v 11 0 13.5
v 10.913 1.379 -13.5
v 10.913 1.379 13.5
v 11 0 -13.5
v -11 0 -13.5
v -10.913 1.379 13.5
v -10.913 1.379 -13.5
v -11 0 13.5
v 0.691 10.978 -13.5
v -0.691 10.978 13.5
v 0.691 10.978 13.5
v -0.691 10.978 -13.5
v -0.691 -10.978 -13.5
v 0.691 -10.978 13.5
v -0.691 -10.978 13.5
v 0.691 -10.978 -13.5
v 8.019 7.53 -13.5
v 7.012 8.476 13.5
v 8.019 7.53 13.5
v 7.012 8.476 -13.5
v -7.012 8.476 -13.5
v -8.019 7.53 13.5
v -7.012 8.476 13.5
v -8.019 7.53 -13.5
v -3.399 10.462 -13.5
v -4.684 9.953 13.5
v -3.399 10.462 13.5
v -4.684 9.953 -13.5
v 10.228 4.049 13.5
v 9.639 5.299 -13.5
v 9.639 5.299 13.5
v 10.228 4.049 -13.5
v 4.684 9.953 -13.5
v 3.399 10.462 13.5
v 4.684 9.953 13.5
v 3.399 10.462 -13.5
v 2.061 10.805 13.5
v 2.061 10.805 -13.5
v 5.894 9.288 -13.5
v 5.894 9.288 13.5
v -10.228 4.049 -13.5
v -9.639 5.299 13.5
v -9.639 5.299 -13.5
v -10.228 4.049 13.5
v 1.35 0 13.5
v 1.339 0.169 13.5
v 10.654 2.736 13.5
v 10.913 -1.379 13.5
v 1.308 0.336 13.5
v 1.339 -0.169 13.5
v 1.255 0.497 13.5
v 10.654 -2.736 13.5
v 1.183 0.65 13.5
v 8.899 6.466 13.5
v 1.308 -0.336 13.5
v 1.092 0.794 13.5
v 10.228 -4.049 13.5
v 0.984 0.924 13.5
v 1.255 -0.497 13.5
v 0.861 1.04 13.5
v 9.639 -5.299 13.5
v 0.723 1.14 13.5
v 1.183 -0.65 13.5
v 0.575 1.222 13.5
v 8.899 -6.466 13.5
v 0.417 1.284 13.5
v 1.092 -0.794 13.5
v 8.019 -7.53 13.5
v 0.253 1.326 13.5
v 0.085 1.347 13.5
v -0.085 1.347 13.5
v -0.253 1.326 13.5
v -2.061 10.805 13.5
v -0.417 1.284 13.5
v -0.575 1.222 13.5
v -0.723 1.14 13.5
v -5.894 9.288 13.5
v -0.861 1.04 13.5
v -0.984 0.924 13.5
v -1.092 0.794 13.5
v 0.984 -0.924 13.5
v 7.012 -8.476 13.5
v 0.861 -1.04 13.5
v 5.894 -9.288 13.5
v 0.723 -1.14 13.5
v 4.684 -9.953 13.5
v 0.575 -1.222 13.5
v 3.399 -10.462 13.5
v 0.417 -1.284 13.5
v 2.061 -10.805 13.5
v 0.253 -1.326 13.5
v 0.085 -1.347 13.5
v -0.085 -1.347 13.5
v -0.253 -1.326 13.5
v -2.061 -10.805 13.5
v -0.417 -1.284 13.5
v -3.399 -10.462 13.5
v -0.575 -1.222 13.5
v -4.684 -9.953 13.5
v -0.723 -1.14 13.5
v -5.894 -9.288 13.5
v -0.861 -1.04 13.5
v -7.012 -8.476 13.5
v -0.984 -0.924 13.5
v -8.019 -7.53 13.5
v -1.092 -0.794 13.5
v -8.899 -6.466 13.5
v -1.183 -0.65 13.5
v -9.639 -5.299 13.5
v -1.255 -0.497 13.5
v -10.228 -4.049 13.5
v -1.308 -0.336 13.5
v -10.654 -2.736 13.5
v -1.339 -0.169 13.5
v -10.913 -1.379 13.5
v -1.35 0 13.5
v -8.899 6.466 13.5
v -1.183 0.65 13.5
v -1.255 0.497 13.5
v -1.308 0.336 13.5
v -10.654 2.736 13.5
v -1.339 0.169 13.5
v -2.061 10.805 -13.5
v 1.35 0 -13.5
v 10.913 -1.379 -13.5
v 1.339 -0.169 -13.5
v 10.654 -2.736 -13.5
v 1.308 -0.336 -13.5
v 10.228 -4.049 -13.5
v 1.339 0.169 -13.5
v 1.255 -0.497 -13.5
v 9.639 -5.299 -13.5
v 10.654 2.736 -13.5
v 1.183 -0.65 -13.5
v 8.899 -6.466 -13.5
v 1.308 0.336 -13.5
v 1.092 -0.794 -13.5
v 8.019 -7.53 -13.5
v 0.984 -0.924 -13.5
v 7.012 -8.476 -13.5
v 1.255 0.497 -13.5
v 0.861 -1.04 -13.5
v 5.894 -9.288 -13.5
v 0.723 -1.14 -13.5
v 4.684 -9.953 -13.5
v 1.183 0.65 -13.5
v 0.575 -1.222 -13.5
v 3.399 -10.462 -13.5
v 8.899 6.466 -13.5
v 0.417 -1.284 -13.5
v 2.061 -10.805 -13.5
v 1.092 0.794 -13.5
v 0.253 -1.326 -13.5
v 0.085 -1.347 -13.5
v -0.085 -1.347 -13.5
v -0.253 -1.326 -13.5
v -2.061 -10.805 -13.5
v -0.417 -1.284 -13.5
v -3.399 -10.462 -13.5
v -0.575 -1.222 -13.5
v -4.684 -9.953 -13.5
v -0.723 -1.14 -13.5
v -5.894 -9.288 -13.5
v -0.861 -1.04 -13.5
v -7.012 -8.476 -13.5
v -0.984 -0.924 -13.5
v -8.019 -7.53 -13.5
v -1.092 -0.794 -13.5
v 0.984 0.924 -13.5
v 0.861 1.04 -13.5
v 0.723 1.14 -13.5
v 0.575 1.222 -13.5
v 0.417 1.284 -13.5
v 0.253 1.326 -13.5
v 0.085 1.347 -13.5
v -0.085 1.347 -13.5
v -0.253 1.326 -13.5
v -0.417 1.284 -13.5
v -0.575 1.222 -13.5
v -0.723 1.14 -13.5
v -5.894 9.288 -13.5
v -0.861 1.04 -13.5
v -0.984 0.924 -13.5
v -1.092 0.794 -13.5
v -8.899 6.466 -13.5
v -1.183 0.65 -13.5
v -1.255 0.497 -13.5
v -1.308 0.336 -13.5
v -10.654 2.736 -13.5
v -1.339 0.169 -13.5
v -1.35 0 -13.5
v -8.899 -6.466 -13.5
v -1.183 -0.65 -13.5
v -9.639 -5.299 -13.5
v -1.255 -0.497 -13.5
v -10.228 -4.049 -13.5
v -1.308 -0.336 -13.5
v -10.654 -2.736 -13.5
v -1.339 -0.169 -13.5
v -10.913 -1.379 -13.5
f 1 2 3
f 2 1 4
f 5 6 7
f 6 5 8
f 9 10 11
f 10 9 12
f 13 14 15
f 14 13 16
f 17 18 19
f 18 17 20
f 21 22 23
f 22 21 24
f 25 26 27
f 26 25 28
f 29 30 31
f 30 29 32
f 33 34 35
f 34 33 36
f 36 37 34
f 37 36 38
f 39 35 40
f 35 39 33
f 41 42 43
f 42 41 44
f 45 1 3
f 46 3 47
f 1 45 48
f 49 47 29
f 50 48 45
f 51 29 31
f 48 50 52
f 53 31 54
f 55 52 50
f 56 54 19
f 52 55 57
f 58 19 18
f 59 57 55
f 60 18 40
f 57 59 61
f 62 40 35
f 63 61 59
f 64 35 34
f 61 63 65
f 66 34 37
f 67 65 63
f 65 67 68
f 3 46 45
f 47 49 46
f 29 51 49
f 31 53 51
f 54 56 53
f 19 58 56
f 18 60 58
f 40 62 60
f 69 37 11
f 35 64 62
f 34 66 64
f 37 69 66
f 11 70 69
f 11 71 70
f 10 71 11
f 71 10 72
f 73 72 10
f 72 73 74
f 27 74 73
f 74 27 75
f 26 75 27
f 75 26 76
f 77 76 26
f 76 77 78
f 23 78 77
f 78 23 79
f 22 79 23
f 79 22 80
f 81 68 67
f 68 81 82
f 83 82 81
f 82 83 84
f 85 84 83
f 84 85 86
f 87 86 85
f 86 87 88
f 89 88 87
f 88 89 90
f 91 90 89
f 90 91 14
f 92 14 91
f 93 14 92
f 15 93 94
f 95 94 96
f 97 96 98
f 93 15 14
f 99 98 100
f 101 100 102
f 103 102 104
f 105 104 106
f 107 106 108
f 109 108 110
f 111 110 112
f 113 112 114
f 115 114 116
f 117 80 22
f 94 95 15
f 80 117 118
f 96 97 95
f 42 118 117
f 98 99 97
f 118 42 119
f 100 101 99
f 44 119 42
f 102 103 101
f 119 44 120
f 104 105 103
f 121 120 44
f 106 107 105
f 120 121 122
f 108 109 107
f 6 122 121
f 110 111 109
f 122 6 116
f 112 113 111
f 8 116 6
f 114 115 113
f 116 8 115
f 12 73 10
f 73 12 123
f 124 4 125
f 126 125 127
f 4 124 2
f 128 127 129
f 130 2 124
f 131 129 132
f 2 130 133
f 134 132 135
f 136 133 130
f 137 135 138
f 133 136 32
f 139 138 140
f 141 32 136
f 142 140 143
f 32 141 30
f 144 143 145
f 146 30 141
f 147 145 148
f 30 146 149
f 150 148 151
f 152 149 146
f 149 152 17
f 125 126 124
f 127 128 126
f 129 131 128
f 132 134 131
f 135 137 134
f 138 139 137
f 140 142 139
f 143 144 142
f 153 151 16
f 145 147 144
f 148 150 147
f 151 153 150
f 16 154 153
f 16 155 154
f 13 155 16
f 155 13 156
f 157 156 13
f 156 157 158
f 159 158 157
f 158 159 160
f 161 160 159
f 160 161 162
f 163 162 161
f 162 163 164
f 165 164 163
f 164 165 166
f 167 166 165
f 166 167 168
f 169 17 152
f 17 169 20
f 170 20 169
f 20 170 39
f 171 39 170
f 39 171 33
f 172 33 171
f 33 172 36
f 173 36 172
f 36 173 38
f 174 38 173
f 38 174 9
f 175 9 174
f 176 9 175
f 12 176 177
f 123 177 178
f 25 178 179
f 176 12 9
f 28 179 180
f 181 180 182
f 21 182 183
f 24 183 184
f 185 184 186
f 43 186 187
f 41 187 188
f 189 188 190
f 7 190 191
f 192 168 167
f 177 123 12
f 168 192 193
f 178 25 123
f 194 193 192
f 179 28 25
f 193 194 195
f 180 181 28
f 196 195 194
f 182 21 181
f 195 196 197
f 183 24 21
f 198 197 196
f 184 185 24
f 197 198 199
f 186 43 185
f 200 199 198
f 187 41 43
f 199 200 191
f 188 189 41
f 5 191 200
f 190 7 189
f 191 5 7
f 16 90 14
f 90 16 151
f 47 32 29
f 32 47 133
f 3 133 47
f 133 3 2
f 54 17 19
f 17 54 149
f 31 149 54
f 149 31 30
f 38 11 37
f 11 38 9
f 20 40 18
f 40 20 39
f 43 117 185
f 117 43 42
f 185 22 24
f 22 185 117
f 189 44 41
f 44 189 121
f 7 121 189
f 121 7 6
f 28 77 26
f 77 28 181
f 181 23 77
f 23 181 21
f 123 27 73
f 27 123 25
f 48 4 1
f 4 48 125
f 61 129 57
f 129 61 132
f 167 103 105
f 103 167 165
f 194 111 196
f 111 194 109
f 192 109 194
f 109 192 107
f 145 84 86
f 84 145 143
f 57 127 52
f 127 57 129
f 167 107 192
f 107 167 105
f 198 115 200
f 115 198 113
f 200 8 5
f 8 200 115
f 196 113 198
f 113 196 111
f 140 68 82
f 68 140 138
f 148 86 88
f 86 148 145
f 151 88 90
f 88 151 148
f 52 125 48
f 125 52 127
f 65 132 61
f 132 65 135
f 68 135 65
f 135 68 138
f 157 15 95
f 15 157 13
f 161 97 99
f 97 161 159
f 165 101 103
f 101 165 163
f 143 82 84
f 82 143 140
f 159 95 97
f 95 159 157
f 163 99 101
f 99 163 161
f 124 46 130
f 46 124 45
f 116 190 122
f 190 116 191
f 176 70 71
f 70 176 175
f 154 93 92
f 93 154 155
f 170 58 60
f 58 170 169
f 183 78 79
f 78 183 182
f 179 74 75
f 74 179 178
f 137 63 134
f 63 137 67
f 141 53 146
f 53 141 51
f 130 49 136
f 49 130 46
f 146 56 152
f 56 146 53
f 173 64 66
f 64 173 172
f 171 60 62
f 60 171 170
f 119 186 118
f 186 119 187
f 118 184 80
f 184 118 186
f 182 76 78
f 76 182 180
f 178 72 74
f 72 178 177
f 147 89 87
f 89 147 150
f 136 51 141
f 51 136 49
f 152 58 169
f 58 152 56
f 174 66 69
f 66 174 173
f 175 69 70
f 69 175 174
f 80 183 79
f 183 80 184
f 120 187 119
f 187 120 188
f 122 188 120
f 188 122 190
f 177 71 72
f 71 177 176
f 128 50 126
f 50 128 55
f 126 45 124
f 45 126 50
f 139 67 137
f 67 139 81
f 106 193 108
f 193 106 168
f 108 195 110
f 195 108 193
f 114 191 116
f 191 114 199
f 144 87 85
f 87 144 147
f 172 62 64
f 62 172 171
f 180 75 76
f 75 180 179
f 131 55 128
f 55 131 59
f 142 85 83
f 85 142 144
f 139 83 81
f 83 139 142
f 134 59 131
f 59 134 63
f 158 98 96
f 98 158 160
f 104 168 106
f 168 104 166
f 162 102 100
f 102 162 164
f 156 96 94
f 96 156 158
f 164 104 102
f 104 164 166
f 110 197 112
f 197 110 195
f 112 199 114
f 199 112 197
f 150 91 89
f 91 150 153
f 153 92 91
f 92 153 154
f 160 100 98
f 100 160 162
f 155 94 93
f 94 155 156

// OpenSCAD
$fn = 50;


difference() {
	union() {
		translate(v = [0, 0, -13.5000000000]) {
			cylinder(h = 27, r = 11.0000000000);
		}
	}
	union() {
		translate(v = [0, 0, -100.0000000000]) {
			cylinder(h = 200, r = 1.3500000000);
		}
	}
}
